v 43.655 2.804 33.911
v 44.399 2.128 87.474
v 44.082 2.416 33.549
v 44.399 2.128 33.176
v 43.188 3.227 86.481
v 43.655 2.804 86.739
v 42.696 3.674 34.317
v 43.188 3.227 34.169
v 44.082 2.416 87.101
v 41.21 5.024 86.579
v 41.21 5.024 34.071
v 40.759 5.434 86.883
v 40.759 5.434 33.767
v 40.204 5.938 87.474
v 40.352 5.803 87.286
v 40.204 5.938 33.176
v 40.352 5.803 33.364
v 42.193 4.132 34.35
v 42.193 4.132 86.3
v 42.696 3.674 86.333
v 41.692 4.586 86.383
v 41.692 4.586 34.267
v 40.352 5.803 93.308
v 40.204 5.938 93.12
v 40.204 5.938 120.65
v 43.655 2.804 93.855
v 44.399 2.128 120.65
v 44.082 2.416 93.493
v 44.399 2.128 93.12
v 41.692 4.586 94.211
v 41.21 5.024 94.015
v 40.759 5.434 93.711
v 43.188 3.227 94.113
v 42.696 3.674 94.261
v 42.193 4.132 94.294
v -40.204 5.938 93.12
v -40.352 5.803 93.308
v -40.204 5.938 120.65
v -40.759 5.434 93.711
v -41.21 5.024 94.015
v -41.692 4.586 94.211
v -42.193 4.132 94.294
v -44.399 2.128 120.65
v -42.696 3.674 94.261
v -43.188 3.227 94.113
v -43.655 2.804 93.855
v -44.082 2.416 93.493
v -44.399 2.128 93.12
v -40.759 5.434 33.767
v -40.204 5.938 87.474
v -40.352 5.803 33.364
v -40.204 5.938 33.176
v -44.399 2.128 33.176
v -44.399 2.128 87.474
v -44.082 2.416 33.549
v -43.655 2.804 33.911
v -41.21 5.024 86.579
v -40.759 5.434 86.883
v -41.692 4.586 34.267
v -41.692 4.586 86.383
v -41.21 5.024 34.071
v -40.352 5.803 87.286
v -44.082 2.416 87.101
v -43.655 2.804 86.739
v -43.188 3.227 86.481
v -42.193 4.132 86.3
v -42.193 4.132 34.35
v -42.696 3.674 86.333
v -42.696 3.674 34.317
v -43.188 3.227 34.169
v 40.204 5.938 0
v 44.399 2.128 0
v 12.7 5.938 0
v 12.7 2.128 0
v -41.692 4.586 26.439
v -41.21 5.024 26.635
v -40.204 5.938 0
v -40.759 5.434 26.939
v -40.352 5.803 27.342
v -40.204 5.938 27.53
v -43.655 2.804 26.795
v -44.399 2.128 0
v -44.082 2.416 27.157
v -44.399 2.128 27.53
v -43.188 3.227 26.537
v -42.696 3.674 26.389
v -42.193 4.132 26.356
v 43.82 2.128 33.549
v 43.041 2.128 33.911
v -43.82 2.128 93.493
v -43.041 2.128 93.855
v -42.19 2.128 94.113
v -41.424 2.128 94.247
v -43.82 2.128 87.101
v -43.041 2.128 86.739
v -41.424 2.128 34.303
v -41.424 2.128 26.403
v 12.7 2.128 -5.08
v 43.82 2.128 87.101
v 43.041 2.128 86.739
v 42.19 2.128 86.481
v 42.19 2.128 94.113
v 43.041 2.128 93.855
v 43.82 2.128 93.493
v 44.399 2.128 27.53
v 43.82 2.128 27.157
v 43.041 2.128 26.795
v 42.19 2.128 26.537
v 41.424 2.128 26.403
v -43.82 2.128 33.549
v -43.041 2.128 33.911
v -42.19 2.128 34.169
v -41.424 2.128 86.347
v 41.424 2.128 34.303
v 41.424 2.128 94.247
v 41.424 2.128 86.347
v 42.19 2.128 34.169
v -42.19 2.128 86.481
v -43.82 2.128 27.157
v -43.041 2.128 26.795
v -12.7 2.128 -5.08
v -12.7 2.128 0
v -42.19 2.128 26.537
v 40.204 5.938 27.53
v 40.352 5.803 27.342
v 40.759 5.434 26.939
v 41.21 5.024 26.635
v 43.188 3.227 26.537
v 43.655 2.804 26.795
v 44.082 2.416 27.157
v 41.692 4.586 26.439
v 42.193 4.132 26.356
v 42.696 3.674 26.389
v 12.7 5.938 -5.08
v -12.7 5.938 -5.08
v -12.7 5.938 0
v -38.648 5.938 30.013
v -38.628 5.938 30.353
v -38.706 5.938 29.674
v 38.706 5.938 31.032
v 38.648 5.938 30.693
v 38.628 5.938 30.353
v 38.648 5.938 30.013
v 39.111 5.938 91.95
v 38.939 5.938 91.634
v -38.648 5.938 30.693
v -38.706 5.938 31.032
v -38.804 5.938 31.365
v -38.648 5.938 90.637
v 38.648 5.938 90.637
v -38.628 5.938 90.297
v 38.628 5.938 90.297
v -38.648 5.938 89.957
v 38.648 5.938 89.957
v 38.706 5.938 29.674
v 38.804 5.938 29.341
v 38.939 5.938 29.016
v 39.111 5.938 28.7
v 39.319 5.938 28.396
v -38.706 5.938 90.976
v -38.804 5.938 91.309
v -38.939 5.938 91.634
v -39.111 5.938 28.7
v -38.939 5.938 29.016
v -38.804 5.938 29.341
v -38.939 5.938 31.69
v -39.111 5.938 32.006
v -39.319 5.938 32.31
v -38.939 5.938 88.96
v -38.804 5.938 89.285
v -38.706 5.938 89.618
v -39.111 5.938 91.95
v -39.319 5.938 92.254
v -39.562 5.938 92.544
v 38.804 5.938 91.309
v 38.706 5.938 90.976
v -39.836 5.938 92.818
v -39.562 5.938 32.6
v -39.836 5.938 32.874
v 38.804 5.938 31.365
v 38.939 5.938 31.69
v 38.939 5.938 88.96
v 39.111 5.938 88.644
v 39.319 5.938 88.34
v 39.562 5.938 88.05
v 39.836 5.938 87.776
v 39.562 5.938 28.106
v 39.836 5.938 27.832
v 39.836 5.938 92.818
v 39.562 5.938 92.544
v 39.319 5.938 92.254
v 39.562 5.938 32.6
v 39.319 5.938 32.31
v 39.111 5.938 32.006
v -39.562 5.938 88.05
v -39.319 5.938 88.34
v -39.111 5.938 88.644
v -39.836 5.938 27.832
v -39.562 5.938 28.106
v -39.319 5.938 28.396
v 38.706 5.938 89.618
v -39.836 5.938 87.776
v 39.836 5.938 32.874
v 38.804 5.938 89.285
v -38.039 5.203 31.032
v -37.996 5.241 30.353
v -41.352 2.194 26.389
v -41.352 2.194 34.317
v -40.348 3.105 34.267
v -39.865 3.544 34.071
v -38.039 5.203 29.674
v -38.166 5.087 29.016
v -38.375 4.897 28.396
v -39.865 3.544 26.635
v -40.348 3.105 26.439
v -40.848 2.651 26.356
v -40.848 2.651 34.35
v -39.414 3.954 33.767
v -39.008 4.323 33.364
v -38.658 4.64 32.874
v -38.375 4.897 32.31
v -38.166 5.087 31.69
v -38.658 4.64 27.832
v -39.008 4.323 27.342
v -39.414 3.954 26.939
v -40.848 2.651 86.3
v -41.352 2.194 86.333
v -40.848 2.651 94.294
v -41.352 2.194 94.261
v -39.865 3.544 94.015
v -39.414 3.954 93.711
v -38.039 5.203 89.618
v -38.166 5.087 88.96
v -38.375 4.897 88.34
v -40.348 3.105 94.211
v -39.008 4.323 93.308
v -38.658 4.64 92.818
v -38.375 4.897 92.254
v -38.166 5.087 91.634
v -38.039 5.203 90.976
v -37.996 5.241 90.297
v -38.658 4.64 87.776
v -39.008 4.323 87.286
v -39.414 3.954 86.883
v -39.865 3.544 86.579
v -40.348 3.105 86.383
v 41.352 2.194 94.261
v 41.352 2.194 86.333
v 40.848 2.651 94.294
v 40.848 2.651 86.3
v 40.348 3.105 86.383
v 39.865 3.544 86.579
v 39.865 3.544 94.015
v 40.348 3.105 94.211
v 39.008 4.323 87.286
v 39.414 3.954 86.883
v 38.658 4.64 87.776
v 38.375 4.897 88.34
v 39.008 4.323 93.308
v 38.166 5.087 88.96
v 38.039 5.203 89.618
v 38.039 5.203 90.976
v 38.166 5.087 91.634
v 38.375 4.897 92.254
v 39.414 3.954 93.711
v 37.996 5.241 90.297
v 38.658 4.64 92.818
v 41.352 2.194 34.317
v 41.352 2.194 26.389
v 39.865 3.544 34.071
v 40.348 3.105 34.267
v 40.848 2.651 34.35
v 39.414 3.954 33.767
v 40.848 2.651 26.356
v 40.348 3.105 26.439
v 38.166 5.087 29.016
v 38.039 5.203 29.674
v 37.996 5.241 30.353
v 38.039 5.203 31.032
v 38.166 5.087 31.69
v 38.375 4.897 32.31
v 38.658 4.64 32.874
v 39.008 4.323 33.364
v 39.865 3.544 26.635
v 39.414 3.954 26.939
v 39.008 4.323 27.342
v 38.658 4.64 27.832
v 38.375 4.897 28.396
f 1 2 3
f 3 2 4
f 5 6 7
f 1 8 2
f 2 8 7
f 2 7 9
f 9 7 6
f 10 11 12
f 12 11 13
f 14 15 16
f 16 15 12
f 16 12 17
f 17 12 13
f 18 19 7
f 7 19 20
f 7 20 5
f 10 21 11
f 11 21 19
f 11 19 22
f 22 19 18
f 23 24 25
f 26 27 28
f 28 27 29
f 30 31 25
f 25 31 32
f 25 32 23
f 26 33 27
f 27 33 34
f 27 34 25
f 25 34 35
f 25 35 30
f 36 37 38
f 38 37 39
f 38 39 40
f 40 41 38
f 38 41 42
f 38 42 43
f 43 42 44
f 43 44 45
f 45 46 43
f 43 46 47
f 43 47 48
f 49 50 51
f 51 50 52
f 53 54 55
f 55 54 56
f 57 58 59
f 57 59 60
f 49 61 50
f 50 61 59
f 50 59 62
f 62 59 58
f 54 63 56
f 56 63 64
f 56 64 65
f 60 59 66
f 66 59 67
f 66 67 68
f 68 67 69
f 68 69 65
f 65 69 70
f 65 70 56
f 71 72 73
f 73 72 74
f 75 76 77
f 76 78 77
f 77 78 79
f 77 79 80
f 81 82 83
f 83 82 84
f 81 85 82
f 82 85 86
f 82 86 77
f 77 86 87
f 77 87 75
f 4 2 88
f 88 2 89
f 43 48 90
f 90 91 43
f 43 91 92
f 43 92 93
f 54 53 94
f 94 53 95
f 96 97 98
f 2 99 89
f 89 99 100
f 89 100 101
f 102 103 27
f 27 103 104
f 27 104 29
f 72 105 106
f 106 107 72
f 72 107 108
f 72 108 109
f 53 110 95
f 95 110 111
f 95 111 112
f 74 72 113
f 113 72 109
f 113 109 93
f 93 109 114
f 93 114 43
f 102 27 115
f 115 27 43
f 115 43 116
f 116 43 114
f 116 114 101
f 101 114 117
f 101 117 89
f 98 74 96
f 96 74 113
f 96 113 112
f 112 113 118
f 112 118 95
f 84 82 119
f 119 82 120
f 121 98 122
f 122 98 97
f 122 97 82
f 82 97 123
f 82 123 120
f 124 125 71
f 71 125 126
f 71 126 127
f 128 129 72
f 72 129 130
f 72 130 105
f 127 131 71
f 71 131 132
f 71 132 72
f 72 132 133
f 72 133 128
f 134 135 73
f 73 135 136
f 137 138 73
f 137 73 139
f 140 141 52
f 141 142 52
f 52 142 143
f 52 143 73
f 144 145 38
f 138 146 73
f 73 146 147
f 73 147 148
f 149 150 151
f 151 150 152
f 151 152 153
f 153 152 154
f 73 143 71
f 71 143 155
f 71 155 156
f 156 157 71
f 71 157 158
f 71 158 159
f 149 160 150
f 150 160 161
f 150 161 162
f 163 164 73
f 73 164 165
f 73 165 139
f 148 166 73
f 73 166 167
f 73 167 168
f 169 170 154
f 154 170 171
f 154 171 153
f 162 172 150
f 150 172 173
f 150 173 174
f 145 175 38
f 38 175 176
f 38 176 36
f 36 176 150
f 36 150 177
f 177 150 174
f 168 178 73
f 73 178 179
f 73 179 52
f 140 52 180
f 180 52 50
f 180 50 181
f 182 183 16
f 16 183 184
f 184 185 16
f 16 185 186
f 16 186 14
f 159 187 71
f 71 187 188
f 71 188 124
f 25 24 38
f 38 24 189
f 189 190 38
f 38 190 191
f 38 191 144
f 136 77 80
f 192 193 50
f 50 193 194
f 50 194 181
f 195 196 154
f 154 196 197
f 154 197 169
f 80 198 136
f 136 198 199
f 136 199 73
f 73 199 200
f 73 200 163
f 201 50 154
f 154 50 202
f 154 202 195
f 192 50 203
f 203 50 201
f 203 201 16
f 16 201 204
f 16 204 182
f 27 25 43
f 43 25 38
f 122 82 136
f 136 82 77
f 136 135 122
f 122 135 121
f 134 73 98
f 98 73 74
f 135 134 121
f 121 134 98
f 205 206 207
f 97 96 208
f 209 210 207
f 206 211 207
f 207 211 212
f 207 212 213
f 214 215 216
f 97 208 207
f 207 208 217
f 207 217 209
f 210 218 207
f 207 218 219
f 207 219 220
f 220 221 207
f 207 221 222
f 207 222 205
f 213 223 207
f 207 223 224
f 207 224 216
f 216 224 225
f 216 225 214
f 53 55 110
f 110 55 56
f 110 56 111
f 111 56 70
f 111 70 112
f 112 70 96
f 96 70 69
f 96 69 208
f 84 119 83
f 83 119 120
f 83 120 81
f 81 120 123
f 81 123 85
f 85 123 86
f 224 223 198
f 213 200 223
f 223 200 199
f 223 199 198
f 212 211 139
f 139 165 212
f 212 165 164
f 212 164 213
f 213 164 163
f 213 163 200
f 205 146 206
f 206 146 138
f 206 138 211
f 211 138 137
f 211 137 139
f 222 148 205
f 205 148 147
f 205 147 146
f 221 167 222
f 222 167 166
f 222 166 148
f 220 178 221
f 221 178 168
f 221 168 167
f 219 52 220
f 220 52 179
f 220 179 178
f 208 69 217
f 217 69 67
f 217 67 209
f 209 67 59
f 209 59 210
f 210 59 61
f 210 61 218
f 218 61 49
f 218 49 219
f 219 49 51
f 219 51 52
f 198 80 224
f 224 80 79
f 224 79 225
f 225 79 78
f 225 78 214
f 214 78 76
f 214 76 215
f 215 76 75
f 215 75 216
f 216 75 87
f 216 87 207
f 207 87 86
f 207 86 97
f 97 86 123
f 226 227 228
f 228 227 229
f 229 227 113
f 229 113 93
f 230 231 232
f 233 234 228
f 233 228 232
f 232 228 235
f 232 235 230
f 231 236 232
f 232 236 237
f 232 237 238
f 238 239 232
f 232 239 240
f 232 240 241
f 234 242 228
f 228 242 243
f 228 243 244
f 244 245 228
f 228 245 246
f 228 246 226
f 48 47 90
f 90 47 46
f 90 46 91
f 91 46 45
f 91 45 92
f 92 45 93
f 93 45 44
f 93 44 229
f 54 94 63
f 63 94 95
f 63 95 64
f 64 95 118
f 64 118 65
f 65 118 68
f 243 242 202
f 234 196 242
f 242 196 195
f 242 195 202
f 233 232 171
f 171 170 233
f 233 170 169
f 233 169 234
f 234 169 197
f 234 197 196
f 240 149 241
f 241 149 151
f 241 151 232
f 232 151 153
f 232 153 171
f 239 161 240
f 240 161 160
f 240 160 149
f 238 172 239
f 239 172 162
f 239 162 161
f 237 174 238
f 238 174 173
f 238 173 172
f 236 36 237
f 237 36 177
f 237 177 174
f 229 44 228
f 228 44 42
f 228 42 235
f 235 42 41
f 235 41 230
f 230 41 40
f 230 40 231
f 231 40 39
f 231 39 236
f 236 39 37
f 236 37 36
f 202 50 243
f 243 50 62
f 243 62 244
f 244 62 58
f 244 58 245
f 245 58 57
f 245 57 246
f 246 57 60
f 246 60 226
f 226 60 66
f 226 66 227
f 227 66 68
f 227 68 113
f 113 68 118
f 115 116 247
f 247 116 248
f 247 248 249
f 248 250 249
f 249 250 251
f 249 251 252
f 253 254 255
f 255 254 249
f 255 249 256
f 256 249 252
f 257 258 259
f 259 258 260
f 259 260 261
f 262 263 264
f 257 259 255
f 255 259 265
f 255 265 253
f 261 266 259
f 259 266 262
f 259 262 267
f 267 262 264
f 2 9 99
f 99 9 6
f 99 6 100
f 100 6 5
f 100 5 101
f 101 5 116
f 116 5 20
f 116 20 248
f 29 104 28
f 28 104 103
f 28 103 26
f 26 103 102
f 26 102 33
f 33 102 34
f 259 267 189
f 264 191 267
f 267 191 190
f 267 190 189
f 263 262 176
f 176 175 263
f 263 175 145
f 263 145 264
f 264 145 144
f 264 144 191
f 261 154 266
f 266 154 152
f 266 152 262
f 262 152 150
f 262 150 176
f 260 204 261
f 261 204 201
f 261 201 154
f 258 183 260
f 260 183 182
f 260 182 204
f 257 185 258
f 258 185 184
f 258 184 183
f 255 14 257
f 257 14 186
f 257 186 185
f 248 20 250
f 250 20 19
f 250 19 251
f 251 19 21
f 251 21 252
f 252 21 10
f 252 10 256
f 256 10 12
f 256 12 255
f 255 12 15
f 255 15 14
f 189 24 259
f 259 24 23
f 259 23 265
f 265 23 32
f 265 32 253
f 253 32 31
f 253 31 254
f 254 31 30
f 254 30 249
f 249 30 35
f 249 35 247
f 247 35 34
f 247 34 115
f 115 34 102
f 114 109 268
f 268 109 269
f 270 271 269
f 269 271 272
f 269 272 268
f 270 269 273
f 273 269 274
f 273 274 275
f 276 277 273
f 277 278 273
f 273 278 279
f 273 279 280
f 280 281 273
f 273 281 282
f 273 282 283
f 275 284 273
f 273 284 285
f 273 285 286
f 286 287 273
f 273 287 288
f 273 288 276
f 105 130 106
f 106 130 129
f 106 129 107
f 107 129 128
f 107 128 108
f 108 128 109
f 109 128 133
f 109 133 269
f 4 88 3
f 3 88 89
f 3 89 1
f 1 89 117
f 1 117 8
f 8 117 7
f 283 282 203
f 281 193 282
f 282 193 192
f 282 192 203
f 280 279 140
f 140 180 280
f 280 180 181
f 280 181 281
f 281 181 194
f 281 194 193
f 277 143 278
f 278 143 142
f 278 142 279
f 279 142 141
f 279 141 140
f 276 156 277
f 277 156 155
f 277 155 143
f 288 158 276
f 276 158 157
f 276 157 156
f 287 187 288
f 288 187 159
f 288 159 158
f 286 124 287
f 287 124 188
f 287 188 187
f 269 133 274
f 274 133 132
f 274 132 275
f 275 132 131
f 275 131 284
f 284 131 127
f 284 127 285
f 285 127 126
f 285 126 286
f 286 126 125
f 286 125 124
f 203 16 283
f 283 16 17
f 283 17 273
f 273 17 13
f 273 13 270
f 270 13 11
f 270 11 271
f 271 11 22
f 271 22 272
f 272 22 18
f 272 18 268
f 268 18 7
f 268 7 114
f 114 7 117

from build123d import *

# Parameters (mm, degrees)
BOSS_EXTRUDE1_DEPTH = 120.65
SKETCH2_W           = 25.4
SKETCH2_H           = 5.08
BOSS_EXTRUDE2_DEPTH = 3.81
SKETCH3_R           = 4
CUT_EXTRUDE1_DEPTH  = 2
SKETCH4_R           = 4
CUT_EXTRUDE2_DEPTH  = 2


with BuildPart() as part:
    # Sketch1 → Boss-Extrude1 (new body)
    with BuildSketch(Plane.XY):
        Polygon((-40.203883769, 5.937788296), (40.203883769, 5.937788296), (44.399042974, 2.127788296), (-44.399042974, 2.127788296), align=None)
    extrude(amount=BOSS_EXTRUDE1_DEPTH)

    # Sketch2 → Boss-Extrude2 (add)
    with BuildSketch(Plane.XZ.offset(-2.127788296)):
        with Locations((0, -2.54)):
            Rectangle(SKETCH2_W, SKETCH2_H)
    extrude(amount=-BOSS_EXTRUDE2_DEPTH)

    # Sketch3 → Cut-Extrude1 (cut)
    with BuildSketch(Plane(origin=(-21.127225221, 23.263011377, 0), x_dir=(0.7402720771062569, 0.6723074087475075, 0), z_dir=(-0.6723074087475075, 0.7402720771062569, 0))):
        with Locations((-28.603318705, -30.353)):
            Circle(SKETCH3_R)
        with Locations((-28.603318705, -90.297)):
            Circle(SKETCH3_R)
    extrude(amount=-CUT_EXTRUDE1_DEPTH, mode=Mode.SUBTRACT)

    # Sketch4 → Cut-Extrude2 (cut)
    with BuildSketch(Plane(origin=(21.127225221, 23.263011377, 0), x_dir=(0.7402720771062569, -0.6723074087475075, 0), z_dir=(0.6723074087475075, 0.7402720771062569, 0))):
        with Locations((28.603318705, -90.297)):
            Circle(SKETCH4_R)
        with Locations((28.603318705, -30.353)):
            Circle(SKETCH4_R)
    extrude(amount=-CUT_EXTRUDE2_DEPTH, mode=Mode.SUBTRACT)


solid = part.part
